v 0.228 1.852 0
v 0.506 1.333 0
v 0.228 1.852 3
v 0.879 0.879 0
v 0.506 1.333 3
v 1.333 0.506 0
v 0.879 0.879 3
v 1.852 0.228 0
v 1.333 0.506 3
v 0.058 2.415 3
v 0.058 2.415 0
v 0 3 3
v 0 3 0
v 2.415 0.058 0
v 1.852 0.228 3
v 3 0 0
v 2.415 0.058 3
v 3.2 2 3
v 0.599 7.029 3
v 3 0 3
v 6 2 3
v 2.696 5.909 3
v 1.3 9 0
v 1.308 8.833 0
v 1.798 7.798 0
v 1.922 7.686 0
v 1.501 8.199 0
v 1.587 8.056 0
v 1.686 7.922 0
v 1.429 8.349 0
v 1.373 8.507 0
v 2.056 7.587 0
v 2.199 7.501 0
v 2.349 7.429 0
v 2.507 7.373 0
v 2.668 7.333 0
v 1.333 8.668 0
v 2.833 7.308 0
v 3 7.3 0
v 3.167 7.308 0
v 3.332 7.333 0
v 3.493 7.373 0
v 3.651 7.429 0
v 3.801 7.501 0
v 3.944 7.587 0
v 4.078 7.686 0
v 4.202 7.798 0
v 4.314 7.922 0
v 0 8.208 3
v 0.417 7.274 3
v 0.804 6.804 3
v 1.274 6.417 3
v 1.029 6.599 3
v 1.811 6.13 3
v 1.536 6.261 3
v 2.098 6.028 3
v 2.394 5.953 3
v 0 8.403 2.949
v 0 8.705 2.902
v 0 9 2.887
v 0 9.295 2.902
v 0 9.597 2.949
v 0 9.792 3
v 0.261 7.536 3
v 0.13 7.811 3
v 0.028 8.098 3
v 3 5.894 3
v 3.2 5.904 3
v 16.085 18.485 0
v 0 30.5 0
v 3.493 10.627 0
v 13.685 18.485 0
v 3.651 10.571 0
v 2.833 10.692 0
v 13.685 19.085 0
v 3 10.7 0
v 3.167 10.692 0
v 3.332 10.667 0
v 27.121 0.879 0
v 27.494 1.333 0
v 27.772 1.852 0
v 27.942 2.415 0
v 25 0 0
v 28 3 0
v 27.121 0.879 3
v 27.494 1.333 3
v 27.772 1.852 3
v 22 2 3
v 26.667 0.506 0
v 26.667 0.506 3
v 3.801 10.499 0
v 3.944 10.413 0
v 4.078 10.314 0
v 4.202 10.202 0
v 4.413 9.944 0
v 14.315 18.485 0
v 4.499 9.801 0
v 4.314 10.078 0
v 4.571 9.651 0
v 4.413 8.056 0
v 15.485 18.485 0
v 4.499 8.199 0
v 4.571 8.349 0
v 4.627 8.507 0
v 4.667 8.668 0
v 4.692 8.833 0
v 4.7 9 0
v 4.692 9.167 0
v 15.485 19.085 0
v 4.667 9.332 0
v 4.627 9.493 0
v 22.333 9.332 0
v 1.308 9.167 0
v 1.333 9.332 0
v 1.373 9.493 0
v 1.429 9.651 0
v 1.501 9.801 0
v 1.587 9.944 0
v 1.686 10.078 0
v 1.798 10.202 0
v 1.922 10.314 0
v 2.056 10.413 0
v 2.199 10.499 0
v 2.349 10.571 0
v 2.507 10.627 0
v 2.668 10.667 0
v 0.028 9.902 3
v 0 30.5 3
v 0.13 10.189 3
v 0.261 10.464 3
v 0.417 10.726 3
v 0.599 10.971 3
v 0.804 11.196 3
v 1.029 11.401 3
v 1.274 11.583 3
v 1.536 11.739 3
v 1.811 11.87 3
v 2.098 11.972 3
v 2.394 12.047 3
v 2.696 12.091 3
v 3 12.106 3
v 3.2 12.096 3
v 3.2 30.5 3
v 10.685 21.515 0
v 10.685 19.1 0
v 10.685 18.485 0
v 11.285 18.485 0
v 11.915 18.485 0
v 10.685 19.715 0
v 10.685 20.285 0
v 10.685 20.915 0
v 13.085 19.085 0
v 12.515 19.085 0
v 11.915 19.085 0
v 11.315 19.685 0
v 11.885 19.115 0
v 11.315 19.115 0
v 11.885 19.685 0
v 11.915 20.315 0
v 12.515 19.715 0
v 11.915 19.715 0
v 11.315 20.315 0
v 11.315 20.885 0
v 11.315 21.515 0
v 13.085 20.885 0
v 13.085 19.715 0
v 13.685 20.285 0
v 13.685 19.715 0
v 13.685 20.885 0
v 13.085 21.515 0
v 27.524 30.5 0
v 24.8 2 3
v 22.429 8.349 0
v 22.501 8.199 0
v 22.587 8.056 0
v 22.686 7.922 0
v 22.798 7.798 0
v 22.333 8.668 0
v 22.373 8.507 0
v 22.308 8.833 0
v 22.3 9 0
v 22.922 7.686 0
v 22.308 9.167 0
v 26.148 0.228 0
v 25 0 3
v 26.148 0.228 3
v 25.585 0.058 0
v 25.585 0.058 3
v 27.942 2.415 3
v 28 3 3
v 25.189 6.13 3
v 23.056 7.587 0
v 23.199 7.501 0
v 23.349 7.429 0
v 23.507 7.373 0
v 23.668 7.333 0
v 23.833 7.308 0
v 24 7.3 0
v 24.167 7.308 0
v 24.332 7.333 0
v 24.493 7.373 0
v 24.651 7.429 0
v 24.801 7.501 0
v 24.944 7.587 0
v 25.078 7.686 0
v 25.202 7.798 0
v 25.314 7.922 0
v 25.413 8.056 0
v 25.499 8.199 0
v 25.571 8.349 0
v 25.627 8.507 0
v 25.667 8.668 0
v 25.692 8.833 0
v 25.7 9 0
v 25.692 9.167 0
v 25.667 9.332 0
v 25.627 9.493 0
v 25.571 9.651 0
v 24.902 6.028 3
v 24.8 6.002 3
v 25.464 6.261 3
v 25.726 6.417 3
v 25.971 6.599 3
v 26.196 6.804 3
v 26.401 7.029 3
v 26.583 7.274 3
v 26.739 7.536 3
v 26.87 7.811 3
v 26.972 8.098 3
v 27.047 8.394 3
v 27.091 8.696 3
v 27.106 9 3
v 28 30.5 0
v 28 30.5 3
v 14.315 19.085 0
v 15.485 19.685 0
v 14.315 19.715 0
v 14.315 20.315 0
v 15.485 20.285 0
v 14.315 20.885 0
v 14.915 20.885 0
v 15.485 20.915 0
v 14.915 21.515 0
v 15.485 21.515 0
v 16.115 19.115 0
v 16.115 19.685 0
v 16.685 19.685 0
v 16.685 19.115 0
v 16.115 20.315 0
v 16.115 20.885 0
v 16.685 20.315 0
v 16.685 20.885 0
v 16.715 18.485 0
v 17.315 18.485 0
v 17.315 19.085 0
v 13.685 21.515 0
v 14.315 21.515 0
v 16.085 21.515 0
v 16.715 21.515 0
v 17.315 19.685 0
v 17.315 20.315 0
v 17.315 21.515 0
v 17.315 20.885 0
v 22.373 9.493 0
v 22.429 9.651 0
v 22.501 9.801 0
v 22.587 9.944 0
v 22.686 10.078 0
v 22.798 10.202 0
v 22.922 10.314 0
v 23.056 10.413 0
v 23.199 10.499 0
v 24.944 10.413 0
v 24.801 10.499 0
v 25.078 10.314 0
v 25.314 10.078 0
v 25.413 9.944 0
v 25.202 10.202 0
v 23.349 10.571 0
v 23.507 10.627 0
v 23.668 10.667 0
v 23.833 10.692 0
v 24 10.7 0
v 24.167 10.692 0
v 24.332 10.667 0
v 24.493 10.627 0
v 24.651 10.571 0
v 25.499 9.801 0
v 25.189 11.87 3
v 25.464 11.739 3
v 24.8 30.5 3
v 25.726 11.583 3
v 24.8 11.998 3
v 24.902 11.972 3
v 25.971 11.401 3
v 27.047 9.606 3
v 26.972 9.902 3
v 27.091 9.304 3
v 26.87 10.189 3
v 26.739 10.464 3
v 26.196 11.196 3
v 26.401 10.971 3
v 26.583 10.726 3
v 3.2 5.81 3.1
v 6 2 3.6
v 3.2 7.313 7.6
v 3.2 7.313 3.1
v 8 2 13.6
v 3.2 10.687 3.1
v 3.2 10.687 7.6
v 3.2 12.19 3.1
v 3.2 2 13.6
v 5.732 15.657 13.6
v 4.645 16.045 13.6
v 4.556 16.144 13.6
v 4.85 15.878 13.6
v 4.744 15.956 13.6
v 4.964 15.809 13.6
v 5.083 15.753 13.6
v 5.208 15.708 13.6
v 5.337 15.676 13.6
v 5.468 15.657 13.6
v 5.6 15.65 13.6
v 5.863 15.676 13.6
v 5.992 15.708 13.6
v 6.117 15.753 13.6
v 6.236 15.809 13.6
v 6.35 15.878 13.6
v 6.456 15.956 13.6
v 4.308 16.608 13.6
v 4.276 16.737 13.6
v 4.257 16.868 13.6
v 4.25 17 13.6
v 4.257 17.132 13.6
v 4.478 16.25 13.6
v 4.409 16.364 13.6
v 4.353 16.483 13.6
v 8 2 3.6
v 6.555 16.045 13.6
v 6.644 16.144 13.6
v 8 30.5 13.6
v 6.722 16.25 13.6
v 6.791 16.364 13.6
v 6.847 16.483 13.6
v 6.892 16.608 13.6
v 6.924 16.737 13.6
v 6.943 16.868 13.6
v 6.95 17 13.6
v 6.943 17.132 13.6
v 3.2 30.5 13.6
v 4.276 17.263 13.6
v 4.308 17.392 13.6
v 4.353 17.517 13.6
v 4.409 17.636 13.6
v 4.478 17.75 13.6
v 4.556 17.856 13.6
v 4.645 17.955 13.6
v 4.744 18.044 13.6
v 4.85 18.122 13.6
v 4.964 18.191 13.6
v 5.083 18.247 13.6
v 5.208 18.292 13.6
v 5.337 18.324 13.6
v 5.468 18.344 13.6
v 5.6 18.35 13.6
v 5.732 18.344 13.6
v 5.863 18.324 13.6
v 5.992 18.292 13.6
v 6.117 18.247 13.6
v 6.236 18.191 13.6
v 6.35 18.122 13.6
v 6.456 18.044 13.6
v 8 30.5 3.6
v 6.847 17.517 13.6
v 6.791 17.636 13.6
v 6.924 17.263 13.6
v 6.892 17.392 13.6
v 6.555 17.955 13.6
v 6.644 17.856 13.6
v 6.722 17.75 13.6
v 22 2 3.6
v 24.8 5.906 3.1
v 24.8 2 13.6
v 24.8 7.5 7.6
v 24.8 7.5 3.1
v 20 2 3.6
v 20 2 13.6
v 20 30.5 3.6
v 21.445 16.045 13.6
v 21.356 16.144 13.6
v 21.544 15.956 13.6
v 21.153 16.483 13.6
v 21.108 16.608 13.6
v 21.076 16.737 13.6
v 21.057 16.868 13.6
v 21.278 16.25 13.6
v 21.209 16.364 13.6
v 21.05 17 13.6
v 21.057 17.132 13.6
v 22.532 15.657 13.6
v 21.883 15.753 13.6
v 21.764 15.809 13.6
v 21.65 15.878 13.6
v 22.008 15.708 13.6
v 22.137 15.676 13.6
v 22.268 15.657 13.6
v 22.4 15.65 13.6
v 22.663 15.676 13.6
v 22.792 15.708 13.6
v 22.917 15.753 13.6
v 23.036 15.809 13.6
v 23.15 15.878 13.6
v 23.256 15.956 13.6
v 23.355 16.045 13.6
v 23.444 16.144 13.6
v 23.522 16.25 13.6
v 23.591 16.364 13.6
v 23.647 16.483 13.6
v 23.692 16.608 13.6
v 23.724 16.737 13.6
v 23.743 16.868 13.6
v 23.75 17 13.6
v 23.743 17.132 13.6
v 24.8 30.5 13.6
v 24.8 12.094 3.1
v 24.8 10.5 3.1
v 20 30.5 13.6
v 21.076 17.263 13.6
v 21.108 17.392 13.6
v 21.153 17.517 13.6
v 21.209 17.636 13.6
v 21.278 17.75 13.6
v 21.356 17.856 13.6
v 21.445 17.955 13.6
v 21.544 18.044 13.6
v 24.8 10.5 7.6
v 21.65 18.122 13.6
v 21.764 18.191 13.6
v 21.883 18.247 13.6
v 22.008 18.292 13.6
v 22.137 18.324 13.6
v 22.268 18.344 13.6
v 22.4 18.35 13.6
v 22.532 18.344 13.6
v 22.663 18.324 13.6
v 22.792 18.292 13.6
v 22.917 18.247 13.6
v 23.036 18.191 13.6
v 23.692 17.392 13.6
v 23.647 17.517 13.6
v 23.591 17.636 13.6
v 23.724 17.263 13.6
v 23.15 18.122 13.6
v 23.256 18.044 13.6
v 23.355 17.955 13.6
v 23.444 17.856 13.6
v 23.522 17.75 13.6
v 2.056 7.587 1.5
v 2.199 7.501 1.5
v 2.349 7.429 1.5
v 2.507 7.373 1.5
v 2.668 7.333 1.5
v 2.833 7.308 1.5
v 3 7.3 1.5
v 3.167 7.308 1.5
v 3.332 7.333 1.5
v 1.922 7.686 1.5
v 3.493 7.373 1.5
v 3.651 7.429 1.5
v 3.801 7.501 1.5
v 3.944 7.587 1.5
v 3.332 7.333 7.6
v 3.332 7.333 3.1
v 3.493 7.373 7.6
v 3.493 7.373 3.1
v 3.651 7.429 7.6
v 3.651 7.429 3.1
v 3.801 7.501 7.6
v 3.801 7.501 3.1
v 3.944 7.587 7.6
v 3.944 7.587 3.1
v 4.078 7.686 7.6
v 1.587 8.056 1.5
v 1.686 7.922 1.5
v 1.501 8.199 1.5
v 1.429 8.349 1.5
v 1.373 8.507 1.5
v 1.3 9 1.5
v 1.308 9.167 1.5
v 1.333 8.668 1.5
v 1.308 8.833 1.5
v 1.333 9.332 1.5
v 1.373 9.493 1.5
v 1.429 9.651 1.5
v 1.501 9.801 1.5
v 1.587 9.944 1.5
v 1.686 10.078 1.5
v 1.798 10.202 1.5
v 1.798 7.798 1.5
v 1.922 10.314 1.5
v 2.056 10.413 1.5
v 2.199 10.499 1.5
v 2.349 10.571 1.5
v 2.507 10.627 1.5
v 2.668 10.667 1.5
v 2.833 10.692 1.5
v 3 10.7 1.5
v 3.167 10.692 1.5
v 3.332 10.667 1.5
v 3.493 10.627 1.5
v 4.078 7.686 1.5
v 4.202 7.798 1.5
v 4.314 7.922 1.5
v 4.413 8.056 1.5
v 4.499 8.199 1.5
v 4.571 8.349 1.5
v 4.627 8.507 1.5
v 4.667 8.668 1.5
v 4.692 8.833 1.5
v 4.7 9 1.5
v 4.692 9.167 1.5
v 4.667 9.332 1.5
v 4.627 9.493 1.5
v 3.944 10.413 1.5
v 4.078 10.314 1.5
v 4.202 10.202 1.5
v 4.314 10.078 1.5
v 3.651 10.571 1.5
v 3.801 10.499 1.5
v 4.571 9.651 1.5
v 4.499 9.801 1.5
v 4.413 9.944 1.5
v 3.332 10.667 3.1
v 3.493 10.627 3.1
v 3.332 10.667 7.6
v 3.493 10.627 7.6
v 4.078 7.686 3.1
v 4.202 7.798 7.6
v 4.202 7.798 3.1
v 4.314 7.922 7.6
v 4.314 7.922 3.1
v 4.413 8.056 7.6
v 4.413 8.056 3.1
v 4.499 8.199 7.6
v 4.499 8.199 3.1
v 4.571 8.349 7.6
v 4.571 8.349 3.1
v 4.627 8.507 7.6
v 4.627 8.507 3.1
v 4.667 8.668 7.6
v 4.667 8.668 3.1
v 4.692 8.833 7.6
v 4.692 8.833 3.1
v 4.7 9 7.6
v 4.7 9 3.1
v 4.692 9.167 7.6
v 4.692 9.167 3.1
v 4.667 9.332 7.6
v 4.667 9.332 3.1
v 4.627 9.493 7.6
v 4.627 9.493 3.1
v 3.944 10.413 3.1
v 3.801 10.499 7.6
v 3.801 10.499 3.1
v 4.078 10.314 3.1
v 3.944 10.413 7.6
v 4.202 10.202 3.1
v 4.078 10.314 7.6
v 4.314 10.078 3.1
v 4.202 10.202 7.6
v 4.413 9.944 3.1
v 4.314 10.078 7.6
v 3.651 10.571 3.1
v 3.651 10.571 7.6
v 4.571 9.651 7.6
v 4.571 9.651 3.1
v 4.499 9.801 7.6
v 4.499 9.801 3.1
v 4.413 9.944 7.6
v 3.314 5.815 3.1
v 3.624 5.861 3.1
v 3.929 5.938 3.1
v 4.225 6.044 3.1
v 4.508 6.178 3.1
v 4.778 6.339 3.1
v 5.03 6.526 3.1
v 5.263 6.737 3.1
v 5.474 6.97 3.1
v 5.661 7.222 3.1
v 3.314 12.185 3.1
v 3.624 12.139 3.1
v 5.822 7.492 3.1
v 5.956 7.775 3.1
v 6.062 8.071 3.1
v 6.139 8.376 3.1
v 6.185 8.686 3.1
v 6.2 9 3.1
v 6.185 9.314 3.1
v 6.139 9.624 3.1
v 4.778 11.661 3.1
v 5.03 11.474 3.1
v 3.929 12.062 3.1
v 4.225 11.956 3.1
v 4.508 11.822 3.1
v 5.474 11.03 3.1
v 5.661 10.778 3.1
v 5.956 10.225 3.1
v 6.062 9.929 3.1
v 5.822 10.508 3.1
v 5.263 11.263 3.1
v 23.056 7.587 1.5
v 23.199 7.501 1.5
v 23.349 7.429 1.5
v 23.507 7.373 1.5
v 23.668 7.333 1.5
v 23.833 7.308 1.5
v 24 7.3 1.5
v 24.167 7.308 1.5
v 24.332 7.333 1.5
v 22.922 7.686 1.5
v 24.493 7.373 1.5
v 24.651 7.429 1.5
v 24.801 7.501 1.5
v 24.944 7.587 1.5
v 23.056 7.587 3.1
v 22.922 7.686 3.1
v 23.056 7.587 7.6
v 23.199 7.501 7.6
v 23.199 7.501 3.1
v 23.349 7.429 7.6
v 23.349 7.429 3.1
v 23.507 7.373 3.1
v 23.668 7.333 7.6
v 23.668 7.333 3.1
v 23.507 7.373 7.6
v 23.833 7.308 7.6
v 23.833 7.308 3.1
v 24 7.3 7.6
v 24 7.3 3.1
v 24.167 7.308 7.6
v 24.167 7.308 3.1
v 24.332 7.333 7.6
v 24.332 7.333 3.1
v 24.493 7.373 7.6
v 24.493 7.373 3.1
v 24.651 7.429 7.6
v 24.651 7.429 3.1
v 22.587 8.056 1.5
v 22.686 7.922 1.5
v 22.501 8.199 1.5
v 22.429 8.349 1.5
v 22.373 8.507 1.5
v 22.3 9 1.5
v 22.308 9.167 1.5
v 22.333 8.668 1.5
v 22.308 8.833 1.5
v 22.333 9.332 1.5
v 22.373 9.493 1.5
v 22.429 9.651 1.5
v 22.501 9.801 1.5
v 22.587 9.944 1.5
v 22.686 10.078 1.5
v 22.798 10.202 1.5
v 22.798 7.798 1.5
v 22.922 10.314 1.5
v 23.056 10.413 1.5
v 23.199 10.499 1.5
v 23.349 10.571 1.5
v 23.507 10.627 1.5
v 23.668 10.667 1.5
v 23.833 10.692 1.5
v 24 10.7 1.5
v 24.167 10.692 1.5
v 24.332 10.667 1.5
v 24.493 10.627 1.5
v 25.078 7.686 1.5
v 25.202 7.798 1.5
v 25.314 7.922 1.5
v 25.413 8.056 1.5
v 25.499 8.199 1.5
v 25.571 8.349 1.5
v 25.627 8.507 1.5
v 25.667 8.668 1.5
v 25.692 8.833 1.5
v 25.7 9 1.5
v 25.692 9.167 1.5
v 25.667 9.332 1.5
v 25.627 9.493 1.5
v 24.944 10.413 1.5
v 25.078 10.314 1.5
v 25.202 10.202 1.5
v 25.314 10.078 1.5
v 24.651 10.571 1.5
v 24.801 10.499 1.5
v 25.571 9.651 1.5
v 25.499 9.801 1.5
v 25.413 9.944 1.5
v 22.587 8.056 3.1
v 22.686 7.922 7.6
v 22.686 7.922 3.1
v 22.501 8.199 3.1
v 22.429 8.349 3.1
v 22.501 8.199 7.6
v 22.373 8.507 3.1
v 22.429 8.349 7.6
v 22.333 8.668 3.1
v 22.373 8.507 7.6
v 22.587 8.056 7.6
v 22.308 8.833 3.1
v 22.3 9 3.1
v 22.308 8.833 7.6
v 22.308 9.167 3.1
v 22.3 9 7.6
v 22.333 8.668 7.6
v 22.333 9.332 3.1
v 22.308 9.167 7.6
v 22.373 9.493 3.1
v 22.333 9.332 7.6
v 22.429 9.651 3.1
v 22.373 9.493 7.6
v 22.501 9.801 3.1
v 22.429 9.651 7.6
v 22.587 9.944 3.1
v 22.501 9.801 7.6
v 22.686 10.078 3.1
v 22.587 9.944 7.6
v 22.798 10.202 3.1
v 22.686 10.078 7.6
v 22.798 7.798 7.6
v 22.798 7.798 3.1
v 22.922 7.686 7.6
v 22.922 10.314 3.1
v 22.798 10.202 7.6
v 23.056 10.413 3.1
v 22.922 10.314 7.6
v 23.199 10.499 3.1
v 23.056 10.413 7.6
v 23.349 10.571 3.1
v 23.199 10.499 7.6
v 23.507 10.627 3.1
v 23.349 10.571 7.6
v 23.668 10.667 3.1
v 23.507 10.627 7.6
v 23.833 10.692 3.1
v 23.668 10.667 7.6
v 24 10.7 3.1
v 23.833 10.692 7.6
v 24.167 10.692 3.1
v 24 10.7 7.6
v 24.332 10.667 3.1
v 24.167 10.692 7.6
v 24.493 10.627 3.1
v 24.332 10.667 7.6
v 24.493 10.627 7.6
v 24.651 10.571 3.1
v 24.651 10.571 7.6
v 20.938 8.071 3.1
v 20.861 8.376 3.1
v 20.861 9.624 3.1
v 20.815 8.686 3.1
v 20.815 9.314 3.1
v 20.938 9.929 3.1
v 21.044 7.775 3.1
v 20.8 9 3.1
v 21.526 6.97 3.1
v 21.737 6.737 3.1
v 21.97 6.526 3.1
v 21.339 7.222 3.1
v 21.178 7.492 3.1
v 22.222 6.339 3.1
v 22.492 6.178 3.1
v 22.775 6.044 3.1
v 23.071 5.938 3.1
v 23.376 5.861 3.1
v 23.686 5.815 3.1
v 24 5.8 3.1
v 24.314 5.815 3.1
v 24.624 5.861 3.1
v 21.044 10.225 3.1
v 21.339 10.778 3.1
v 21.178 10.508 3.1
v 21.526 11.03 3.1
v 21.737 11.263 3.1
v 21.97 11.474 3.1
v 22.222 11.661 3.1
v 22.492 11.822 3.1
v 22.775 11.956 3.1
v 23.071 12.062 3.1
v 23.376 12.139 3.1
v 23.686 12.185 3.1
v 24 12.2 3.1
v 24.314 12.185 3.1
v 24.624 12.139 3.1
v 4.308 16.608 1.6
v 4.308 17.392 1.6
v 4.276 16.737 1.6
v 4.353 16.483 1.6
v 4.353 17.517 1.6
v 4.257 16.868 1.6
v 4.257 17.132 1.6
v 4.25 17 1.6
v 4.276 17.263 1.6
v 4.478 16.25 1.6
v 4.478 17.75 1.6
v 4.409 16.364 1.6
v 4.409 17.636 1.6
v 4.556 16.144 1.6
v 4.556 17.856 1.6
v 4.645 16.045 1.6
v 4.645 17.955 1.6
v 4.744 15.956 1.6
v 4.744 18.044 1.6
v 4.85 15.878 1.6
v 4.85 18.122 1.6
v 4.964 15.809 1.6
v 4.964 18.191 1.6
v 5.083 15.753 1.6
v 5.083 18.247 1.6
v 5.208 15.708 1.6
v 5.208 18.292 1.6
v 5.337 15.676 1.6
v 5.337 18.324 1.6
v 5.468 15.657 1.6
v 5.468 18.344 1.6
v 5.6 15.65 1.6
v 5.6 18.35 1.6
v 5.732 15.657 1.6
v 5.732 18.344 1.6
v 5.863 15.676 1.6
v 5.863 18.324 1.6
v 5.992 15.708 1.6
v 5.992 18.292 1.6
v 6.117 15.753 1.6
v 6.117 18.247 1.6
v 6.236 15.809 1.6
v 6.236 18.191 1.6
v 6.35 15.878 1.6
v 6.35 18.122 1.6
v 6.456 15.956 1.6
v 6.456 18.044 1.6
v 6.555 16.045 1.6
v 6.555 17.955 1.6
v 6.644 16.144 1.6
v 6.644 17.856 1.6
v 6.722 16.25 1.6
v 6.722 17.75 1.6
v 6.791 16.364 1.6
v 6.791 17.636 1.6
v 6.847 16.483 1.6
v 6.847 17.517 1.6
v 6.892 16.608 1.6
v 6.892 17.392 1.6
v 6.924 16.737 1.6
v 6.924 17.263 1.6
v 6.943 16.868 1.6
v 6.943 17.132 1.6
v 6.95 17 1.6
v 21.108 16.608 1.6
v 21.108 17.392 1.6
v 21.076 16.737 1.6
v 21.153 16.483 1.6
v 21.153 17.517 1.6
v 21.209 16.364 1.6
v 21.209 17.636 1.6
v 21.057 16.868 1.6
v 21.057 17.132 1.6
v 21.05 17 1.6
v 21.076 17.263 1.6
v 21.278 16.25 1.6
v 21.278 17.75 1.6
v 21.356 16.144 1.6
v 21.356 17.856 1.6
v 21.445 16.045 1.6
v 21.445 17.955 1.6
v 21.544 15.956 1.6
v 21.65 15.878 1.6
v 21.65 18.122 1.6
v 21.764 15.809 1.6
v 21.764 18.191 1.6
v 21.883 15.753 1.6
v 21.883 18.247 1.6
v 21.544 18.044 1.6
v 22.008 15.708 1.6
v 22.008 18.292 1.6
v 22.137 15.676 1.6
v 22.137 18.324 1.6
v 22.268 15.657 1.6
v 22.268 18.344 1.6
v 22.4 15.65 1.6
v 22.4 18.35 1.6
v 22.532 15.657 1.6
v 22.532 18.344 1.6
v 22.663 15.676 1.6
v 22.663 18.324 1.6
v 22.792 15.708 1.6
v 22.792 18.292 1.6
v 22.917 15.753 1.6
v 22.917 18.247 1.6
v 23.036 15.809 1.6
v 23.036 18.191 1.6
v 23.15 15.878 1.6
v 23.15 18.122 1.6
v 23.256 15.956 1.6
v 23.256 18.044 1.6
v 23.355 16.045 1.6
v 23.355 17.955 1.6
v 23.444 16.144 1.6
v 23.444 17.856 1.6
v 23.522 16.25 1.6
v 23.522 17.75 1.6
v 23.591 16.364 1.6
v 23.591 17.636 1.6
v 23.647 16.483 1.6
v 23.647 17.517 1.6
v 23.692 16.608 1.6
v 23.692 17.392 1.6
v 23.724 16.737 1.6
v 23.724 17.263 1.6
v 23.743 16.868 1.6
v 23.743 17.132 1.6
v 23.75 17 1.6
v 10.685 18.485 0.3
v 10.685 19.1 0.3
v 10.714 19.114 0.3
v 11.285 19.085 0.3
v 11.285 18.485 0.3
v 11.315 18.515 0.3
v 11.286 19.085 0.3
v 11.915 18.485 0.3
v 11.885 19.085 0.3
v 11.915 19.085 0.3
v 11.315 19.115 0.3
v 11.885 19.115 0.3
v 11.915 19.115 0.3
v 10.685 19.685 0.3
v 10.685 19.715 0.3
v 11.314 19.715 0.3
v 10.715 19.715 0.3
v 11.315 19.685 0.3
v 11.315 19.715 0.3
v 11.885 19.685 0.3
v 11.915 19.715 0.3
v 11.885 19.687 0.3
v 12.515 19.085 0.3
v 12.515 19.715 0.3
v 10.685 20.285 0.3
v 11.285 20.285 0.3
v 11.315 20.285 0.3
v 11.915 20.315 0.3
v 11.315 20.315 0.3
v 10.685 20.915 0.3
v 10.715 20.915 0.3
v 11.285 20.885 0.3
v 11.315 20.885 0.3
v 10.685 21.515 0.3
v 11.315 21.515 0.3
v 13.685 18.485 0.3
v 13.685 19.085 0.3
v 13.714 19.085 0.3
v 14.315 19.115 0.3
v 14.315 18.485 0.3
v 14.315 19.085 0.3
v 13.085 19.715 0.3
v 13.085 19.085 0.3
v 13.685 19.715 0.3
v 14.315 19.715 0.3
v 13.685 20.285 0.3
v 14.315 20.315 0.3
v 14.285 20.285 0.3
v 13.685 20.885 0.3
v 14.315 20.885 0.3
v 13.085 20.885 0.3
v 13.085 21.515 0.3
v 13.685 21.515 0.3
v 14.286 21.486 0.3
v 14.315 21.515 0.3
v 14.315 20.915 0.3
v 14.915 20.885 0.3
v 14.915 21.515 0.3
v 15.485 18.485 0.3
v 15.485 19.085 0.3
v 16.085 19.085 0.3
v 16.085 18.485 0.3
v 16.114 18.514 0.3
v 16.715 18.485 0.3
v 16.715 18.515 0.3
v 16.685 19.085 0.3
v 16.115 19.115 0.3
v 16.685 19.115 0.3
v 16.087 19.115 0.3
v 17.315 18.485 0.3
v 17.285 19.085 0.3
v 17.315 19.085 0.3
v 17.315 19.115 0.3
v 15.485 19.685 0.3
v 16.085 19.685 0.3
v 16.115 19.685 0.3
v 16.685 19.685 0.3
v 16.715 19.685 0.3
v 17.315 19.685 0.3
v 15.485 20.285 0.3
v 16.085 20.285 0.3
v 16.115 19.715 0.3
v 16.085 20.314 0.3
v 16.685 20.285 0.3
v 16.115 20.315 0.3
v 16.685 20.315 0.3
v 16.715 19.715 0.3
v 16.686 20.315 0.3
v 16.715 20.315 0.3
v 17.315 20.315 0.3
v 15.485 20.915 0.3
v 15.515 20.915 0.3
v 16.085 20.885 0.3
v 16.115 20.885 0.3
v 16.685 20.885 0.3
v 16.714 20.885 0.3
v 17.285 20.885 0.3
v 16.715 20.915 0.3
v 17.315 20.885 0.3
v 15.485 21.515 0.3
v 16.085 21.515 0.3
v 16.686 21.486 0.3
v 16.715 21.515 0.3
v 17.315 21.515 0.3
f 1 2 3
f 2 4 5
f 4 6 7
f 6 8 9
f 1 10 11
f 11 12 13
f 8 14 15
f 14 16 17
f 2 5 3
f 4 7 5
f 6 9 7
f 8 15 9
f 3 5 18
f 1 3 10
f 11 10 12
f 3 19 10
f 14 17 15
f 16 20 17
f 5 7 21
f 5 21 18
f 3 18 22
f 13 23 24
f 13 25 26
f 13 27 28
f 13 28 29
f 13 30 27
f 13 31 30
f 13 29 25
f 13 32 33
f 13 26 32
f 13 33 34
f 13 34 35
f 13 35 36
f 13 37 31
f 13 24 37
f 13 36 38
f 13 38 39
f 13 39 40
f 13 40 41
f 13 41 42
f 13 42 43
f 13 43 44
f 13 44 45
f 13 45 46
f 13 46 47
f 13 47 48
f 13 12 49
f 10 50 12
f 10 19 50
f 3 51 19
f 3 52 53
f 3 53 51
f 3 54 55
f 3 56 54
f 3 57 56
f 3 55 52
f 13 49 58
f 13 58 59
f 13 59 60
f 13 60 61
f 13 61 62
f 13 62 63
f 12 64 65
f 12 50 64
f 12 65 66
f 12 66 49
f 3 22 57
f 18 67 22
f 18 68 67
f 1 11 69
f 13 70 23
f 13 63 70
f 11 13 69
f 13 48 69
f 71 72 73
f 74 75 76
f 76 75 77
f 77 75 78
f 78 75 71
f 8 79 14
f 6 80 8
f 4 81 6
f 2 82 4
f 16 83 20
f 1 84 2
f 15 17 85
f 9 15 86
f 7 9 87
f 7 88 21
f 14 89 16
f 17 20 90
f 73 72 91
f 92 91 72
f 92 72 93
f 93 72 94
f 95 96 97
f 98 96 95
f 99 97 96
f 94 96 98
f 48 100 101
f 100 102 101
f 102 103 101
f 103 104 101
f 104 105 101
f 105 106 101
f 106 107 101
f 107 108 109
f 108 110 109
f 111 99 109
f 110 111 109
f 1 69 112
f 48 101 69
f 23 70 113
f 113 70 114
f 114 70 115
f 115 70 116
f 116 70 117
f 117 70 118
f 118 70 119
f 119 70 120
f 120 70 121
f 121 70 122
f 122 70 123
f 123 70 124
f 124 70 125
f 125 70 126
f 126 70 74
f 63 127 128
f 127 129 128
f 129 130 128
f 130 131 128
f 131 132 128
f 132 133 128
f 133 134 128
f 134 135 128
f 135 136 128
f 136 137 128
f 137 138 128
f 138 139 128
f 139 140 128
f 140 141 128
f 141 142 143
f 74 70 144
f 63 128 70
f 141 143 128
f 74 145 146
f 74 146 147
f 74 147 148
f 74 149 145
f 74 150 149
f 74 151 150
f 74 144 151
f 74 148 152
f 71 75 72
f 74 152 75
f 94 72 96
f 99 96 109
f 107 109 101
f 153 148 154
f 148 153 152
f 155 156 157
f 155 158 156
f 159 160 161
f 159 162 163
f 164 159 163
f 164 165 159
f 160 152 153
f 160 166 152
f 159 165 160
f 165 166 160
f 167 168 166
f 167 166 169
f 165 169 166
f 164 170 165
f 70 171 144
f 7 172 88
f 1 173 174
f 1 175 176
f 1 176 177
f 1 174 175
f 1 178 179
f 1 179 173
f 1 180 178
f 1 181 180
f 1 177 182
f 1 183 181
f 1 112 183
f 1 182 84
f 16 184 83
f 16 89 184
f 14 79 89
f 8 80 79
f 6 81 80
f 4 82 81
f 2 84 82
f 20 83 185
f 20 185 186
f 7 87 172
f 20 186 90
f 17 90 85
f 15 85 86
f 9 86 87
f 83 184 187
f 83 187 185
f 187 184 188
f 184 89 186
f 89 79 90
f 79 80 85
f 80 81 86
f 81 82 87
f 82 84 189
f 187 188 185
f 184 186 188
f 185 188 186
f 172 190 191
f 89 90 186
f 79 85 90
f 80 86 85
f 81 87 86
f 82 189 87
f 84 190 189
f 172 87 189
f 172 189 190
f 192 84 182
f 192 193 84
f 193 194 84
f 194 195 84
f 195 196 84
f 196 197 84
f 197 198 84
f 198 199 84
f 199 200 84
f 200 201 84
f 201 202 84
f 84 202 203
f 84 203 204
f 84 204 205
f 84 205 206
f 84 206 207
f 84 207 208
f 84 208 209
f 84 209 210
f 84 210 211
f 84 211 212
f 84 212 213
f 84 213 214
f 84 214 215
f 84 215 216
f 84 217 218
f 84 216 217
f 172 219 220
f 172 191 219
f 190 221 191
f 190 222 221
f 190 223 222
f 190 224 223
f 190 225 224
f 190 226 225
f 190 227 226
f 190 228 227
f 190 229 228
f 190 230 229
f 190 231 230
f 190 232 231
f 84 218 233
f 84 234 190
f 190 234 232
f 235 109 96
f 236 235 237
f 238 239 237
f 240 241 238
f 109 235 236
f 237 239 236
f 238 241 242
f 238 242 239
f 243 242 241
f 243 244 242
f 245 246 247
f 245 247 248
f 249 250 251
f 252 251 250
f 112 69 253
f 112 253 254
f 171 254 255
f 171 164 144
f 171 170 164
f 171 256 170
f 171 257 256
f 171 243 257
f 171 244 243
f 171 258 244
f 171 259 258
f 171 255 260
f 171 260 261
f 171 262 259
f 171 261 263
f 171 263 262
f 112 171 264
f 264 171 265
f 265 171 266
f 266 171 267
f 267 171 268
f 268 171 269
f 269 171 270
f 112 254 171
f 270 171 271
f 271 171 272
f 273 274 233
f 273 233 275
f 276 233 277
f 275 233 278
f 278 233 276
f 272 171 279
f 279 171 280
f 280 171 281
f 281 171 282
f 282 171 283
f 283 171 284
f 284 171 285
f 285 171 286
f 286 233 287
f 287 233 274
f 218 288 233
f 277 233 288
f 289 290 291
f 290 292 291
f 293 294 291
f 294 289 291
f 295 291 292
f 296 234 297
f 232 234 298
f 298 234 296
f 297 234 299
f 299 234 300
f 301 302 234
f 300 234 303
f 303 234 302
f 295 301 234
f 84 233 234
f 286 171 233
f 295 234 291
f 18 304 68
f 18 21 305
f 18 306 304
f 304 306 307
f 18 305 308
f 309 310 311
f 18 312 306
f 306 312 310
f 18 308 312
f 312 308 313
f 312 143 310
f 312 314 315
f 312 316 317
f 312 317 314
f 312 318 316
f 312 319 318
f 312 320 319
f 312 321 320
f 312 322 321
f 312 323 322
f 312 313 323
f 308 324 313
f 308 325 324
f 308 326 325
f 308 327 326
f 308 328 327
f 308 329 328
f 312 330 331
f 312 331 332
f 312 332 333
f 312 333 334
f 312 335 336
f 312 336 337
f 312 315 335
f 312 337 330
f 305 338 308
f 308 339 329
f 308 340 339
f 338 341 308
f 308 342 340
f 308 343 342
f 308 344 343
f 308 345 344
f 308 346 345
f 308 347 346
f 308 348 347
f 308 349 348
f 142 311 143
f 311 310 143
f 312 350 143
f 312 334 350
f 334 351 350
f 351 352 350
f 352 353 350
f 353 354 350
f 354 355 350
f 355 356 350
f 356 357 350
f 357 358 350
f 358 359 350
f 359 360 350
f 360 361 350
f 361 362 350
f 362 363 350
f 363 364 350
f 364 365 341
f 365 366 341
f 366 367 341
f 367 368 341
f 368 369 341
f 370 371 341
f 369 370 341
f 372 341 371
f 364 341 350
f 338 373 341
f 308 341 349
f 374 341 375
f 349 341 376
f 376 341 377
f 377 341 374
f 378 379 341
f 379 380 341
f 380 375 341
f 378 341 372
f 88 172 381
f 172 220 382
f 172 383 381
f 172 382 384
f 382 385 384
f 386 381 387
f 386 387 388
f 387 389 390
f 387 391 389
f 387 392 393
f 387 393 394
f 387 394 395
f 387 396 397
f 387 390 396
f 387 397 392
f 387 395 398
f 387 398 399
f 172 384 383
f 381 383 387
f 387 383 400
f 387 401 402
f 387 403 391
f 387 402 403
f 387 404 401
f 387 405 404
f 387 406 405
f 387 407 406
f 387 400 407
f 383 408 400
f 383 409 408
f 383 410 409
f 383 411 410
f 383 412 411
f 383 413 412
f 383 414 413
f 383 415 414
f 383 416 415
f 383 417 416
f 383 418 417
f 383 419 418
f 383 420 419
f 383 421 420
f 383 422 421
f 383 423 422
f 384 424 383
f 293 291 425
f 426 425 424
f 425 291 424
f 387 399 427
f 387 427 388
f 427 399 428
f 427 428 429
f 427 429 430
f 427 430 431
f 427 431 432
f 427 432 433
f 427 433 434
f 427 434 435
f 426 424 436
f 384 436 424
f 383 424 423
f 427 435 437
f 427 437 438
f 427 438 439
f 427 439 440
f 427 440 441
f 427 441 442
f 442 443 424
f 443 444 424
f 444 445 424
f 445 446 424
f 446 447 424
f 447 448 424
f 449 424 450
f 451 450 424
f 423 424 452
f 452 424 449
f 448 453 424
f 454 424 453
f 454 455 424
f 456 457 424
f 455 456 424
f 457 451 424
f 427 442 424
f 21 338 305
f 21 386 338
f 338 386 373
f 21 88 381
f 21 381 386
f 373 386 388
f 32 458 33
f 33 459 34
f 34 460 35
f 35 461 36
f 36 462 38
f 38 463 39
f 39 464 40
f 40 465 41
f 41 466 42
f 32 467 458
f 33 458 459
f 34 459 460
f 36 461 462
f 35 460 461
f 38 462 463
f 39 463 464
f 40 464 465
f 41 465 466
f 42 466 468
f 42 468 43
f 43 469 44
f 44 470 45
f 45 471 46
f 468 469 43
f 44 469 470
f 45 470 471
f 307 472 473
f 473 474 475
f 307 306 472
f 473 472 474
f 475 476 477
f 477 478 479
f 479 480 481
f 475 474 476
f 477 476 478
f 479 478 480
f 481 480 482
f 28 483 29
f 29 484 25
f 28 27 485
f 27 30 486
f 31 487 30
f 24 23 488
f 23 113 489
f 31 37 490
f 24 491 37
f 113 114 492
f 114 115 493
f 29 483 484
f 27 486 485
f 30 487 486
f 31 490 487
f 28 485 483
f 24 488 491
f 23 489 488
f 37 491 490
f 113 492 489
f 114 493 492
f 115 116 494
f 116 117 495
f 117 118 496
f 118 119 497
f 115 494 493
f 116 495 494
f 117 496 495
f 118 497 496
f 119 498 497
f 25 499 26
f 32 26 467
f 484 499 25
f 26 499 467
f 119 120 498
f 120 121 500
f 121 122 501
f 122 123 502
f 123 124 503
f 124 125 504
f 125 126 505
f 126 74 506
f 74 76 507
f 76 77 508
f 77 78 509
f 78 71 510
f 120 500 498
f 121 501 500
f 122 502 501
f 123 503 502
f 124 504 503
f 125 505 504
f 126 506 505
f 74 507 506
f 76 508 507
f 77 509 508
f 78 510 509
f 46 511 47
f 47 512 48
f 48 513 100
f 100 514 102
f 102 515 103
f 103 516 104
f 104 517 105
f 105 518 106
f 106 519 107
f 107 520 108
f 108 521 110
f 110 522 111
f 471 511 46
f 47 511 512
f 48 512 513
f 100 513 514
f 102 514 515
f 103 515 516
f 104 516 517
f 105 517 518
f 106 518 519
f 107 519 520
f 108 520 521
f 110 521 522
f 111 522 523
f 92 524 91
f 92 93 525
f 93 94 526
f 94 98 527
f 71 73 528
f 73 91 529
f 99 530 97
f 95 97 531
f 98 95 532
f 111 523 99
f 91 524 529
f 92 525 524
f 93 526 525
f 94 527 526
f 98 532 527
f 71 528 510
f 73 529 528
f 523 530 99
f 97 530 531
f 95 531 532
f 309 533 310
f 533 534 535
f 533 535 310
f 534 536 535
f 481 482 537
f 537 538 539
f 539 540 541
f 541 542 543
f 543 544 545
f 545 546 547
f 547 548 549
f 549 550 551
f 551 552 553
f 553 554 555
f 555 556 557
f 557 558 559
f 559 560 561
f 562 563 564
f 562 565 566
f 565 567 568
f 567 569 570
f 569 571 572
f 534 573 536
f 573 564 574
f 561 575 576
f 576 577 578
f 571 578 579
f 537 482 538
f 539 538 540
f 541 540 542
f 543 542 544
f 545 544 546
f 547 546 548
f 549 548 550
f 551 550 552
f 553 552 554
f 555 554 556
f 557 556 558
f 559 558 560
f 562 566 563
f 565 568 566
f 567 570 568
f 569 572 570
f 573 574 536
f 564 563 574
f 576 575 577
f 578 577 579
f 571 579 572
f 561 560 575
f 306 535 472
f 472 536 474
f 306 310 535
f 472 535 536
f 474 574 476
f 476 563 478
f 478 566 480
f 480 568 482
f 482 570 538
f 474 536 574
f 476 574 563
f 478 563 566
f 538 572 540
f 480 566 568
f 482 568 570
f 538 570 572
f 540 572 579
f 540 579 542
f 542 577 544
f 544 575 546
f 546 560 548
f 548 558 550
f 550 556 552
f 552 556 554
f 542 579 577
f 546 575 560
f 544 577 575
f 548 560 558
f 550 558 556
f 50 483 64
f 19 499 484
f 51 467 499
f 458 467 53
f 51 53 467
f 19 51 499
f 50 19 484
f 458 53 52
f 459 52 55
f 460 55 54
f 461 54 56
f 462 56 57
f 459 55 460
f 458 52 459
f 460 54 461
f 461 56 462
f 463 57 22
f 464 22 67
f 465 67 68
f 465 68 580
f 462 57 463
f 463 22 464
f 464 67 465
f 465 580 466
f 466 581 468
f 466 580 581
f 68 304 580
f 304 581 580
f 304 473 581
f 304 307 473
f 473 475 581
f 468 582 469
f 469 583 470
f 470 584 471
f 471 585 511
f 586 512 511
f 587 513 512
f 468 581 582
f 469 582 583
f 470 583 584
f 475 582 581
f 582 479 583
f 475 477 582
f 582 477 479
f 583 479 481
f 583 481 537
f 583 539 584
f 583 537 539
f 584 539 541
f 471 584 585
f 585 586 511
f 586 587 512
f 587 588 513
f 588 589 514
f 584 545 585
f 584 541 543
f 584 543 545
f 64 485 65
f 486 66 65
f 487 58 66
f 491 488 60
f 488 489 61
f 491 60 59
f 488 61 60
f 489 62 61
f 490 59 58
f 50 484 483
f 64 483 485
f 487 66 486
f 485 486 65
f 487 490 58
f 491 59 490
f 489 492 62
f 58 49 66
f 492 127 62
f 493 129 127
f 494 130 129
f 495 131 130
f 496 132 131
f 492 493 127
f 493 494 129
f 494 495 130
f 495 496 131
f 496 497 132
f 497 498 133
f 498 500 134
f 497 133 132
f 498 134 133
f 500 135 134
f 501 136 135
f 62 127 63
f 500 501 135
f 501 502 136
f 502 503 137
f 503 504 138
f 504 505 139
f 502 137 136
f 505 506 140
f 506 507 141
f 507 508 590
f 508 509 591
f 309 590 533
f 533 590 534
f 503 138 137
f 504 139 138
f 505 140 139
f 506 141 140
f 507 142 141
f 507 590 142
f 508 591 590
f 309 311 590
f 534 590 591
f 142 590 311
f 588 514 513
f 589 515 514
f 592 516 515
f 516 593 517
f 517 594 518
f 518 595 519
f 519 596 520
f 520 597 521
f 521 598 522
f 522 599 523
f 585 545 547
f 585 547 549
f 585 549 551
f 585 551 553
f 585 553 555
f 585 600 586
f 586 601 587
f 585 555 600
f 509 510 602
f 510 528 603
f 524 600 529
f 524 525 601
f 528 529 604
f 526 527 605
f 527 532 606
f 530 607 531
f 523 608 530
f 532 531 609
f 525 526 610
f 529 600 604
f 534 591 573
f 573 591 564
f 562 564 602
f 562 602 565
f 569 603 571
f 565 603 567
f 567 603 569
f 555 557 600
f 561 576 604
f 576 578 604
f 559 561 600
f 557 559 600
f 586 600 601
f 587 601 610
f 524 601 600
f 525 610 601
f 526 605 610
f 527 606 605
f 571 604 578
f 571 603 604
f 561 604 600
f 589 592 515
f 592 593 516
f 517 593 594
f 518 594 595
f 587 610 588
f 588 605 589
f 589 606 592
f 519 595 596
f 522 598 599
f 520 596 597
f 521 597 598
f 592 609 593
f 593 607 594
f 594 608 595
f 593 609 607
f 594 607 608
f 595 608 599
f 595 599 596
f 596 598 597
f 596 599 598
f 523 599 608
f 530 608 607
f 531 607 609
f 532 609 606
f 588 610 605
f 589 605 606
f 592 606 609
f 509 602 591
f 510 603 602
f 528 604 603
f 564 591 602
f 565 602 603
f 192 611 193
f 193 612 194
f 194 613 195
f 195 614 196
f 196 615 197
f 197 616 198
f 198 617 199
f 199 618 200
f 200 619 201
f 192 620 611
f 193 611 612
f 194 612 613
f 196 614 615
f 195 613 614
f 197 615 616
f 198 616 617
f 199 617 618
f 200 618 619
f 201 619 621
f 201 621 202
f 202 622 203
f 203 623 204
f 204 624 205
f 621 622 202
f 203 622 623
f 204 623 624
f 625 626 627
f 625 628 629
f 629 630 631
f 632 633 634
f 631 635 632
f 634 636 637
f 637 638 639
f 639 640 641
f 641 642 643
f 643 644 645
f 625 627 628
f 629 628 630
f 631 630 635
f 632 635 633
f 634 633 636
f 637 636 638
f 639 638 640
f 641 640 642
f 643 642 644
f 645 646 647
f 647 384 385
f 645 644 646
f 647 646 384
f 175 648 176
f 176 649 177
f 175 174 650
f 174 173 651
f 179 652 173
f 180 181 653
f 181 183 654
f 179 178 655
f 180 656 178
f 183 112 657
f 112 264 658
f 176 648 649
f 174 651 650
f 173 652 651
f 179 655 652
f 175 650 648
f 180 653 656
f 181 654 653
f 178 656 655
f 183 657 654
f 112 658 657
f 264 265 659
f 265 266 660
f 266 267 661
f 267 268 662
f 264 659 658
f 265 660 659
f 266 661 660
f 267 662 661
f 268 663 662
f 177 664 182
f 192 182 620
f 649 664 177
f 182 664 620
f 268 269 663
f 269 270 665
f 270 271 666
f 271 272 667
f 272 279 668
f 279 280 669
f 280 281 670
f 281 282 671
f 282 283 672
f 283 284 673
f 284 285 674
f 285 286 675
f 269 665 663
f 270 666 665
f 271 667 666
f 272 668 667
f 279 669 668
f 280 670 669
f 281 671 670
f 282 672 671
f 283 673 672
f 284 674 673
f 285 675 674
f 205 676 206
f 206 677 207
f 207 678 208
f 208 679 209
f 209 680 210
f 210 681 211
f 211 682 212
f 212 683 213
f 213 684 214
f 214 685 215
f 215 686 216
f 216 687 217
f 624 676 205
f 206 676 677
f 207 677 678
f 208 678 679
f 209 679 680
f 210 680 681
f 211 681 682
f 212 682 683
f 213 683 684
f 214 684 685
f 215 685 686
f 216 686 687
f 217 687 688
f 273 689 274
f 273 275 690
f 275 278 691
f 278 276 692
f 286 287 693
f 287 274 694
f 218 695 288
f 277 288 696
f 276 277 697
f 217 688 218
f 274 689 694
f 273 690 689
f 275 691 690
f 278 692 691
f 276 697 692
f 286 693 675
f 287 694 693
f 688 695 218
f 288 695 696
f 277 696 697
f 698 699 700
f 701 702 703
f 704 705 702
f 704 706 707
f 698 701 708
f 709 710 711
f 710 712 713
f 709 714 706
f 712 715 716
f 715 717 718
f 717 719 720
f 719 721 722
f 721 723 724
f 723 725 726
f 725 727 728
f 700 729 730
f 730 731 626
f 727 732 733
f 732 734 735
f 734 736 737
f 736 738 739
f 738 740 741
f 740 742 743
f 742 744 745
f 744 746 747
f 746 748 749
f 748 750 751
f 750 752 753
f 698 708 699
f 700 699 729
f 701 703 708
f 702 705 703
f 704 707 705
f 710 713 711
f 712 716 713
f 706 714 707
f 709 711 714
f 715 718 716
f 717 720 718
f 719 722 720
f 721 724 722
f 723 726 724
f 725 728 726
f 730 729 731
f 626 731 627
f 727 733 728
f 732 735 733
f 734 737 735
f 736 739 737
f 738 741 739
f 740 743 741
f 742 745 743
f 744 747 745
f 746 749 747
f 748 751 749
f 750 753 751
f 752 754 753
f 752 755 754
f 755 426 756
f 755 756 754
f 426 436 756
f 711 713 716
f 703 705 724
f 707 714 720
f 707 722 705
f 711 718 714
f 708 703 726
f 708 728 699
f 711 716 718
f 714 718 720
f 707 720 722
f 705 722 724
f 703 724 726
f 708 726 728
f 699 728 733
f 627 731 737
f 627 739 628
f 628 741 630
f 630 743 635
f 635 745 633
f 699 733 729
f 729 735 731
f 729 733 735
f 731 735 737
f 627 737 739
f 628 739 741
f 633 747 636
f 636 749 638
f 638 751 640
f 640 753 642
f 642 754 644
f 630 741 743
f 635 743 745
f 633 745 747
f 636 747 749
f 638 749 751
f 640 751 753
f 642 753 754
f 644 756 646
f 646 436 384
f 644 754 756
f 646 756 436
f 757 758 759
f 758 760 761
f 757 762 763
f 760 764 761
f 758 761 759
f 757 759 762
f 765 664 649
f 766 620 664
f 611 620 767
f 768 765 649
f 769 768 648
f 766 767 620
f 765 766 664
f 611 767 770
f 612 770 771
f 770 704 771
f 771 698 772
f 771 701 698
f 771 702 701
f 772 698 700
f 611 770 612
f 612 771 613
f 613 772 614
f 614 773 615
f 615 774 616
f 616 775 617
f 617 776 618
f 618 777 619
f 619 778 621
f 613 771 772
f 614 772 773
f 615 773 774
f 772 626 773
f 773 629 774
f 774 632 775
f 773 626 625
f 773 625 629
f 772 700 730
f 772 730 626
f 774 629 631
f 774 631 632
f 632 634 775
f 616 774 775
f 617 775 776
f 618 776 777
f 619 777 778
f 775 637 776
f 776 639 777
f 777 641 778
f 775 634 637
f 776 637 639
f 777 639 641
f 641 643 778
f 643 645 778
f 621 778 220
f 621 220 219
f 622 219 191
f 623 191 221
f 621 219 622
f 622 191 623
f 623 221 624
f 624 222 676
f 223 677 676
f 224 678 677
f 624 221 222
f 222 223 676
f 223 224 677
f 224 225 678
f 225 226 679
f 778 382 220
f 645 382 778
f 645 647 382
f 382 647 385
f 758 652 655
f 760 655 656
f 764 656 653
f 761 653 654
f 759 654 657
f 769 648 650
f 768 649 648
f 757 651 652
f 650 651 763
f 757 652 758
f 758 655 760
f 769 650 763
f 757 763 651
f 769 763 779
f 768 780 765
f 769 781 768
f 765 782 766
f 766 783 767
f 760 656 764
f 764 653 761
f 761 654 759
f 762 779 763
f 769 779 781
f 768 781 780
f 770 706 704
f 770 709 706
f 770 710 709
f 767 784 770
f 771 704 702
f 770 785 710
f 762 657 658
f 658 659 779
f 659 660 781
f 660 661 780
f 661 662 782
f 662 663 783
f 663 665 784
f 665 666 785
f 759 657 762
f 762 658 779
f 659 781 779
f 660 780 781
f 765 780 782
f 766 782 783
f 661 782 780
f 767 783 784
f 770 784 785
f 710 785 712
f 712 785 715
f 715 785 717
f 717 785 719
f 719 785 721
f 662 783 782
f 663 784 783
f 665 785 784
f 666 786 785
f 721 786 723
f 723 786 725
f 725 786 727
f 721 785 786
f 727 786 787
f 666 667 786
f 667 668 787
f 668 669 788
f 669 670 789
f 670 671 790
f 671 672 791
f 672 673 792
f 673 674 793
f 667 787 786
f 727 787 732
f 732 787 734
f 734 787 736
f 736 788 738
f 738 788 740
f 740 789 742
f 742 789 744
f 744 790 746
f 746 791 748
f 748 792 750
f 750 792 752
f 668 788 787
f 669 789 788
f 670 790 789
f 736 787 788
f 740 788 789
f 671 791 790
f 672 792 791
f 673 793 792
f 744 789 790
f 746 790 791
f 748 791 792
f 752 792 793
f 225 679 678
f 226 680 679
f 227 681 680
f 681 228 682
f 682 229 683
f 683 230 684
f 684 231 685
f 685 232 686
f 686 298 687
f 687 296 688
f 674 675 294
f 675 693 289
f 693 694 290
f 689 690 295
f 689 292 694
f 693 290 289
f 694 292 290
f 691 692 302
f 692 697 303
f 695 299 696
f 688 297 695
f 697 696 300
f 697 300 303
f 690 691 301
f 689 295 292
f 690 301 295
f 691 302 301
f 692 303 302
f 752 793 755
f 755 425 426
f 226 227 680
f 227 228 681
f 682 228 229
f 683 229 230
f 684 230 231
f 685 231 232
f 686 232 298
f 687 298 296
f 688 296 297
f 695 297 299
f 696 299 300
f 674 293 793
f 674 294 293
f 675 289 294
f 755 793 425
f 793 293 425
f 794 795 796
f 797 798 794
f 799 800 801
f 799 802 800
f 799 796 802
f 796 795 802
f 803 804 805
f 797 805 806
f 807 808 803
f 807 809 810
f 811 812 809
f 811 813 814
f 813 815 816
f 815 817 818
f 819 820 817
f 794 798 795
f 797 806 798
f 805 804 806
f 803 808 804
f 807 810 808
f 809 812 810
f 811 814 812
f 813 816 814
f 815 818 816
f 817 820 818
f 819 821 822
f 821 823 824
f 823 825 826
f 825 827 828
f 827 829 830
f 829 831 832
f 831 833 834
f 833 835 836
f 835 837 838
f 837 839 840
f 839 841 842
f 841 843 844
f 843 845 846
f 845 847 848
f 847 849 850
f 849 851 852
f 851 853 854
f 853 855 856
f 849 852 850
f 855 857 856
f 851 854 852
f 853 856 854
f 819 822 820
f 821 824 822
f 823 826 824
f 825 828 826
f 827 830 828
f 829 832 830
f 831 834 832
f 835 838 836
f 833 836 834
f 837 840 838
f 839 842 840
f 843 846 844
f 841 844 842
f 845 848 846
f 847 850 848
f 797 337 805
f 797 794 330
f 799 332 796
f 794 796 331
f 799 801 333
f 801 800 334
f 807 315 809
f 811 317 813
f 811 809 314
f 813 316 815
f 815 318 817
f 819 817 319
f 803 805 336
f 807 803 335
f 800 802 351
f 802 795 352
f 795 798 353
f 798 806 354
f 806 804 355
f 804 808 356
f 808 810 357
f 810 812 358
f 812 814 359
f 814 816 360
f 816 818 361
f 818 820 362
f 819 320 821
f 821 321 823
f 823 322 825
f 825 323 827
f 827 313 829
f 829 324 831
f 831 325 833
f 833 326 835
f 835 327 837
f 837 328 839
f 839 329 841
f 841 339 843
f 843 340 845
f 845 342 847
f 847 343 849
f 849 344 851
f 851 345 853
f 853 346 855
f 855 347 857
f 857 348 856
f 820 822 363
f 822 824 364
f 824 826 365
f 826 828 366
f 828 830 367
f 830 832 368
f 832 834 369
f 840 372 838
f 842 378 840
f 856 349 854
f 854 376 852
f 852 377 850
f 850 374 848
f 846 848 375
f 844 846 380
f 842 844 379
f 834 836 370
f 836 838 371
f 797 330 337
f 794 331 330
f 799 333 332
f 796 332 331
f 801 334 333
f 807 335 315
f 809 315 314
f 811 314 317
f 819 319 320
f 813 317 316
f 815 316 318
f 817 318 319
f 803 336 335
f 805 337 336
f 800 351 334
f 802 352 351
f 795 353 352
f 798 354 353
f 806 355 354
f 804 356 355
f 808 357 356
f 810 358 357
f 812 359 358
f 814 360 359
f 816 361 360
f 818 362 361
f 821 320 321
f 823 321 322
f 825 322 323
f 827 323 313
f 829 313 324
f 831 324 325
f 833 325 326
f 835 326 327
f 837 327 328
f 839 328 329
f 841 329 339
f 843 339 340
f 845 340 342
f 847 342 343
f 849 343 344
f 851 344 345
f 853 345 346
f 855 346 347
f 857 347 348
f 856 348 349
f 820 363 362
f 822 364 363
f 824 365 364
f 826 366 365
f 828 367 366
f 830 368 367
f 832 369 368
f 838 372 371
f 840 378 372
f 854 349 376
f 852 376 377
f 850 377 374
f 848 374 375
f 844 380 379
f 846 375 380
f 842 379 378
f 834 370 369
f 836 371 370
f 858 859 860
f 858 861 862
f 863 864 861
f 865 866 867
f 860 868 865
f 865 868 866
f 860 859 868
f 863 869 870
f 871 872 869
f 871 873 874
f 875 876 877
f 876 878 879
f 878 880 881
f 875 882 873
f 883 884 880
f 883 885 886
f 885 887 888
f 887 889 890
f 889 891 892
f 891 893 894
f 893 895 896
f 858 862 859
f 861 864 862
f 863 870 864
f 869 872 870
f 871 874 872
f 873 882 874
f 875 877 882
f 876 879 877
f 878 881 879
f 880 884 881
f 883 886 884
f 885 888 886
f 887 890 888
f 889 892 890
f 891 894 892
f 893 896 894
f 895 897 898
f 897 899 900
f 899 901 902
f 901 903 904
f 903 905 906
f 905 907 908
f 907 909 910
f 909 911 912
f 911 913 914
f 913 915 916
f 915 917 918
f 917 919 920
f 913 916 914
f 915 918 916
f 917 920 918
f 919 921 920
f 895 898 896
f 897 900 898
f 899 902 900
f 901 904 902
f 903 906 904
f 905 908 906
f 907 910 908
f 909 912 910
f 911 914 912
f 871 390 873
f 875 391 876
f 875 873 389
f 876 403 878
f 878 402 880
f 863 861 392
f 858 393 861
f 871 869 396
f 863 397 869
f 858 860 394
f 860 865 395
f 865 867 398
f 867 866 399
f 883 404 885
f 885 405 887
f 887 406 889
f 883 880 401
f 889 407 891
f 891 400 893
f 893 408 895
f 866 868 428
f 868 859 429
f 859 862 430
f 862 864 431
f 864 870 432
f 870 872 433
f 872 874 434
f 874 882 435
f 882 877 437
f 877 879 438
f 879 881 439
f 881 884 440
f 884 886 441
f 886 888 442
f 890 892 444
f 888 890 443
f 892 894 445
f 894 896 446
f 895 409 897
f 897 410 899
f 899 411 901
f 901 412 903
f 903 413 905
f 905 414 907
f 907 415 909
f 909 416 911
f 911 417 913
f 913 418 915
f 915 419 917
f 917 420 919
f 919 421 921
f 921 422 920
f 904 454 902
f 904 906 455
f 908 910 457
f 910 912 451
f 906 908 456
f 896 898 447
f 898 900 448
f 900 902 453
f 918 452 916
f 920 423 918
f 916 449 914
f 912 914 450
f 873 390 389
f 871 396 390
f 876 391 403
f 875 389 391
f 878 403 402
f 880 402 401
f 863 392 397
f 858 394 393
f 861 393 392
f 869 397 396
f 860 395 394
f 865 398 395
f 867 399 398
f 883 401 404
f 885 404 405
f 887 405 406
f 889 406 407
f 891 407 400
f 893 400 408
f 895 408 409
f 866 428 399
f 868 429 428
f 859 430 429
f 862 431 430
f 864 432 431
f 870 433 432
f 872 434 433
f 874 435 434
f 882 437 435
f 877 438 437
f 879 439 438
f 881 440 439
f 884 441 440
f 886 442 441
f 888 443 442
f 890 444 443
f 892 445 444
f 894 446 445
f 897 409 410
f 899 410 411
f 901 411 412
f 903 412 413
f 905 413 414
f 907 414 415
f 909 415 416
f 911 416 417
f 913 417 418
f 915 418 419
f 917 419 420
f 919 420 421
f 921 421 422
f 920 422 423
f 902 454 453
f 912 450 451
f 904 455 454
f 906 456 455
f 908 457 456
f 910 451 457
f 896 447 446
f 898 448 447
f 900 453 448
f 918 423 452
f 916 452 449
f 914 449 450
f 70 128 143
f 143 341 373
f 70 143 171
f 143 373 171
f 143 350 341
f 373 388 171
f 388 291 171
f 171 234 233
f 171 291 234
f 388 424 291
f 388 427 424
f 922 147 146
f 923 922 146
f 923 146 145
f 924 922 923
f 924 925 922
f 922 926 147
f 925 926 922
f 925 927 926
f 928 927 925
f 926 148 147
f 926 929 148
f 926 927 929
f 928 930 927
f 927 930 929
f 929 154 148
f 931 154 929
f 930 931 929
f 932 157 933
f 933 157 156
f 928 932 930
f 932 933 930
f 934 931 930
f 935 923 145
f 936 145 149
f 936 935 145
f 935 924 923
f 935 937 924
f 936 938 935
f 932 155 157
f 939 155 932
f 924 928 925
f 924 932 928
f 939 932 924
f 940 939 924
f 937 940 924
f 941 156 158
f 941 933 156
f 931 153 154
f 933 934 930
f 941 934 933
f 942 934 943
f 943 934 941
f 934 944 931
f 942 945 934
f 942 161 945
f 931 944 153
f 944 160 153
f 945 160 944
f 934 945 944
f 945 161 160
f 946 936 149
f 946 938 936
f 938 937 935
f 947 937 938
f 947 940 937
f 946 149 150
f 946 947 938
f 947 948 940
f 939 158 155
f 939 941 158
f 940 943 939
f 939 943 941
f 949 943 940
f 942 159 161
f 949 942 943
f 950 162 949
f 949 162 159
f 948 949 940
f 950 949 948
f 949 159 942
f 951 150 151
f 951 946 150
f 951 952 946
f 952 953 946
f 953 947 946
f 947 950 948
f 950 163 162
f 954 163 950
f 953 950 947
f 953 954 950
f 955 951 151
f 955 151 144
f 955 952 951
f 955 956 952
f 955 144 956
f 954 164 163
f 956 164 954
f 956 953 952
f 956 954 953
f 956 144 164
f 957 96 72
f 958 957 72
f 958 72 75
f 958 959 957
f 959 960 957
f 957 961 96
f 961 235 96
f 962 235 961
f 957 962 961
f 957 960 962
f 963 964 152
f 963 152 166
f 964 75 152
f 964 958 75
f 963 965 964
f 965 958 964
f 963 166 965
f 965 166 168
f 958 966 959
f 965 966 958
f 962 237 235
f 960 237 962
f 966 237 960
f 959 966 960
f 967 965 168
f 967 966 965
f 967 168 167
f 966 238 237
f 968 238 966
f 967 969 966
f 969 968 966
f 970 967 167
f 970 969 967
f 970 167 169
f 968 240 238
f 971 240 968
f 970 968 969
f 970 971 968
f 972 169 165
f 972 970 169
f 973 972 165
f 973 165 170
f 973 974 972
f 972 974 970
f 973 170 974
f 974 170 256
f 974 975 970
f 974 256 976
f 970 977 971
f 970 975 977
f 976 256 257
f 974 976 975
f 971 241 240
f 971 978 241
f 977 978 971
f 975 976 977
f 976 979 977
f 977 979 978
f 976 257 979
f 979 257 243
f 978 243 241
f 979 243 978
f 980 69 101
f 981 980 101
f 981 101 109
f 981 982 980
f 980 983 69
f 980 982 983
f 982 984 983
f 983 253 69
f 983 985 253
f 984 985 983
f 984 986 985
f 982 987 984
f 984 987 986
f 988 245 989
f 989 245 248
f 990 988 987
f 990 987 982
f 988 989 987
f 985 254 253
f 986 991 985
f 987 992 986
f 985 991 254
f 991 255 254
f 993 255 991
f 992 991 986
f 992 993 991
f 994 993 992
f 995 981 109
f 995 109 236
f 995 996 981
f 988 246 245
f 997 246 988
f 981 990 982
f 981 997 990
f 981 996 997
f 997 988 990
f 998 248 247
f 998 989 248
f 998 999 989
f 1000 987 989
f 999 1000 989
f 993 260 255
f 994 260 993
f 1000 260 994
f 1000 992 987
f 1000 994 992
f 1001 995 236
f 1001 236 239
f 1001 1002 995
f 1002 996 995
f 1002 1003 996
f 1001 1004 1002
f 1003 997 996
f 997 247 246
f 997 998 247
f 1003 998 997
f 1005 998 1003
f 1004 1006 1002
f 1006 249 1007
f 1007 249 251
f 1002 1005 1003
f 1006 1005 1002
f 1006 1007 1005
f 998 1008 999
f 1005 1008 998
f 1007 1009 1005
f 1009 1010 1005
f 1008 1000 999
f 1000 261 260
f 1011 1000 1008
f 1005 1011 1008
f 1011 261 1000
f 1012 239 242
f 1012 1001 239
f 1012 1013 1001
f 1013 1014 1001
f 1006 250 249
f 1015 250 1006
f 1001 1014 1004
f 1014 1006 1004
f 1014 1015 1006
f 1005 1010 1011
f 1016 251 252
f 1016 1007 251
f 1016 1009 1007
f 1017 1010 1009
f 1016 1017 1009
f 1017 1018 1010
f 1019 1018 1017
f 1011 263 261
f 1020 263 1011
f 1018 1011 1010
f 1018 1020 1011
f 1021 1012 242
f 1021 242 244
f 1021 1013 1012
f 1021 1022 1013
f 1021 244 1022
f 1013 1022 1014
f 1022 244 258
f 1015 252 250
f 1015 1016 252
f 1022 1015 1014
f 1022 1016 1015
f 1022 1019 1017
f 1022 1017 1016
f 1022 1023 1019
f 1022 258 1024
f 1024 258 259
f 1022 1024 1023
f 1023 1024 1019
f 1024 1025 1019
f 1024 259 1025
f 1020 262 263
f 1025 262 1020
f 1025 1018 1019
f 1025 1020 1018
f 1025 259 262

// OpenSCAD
// N20取牌馬達底座
$fn=64;
translate([36,28,-45.4]){rotate([0,0,0]){difference(){difference(){difference(){difference(){difference(){difference(){difference(){difference(){union(){union(){union(){translate([-22,-11,0]){translate([0,0,45.4]){linear_extrude(height=3)polygon([[14,14],[13.94236,14.58527],[13.77164,15.14805],[13.49441,15.66671],[13.12132,16.12132],[12.66671,16.49441],[12.14805,16.77164],[11.58527,16.94236],[11,17],[-11,17],[-11.58527,16.94236],[-12.14805,16.77164],[-12.66671,16.49441],[-13.12132,16.12132],[-13.49441,15.66671],[-13.77164,15.14805],[-13.94236,14.58527],[-14,14],[-14,-14],[-13.94236,-14.58527],[-13.77164,-15.14805],[-13.49441,-15.66671],[-13.12132,-16.12132],[-12.66671,-16.49441],[-12.14805,-16.77164],[-11.58527,-16.94236],[-11,-17],[11,-17],[11.58527,-16.94236],[12.14805,-16.77164],[12.66671,-16.49441],[13.12132,-16.12132],[13.49441,-15.66671],[13.77164,-15.14805],[13.94236,-14.58527],[14,-14]]);}}translate([-32.8,-26,48.3]){cube([4.8,30,10.7]);}}translate([-16,-26,48.3]){cube([4.8,30,10.7]);}}translate([-30,-26,48.3]){cube([16,30,0.7]);}}translate([-33,-19,44]){cylinder(h=9,d1=3.4,d2=3.4,$fn=64);}}translate([-33,-19,48.5]){rotate([180,0,0]){translate([0,0,0]){cylinder(h=1.6,d1=6.4,d2=3.4,$fn=64);}}}}translate([-12,-19,44]){cylinder(h=9,d1=3.4,d2=3.4,$fn=64);}}translate([-12,-19,48.5]){rotate([180,0,0]){translate([0,0,0]){cylinder(h=1.6,d1=6.4,d2=3.4,$fn=64);}}}}translate([-30.4,-11,47]){cylinder(h=16,d1=2.7,d2=2.7,$fn=64);}}translate([-13.6,-11,47]){cylinder(h=16,d1=2.7,d2=2.7,$fn=64);}}translate([-47,2.5,43]){cube([50,15,30]);}}multmatrix([[1,0,0,-22],[0,-1,0,-8],[0,0,-1,45.4],[0,0,0,1]]){union(){union(){union(){union(){union(){union(){union(){union(){union(){union(){union(){union(){union(){union(){union(){union(){union(){union(){union(){union(){union(){union(){union(){union(){union(){union(){union(){union(){translate([-3.315,0.885,-0.3]){cube([0.63,0.63,0.42]);}translate([-2.715,0.885,-0.3]){cube([0.63,0.63,0.42]);}}translate([-3.315,0.285,-0.3]){cube([0.63,0.63,0.42]);}}translate([-2.115,0.285,-0.3]){cube([0.63,0.63,0.42]);}}translate([-3.315,-0.315,-0.3]){cube([0.63,0.63,0.42]);}}translate([-2.715,-0.315,-0.3]){cube([0.63,0.63,0.42]);}}translate([-3.315,-0.915,-0.3]){cube([0.63,0.63,0.42]);}}translate([-3.315,-1.515,-0.3]){cube([0.63,0.63,0.42]);}}translate([-0.315,0.885,-0.3]){cube([0.63,0.63,0.42]);}}translate([-0.915,0.285,-0.3]){cube([0.63,0.63,0.42]);}}translate([-0.315,0.285,-0.3]){cube([0.63,0.63,0.42]);}}translate([-0.315,-0.315,-0.3]){cube([0.63,0.63,0.42]);}}translate([-0.315,-0.915,-0.3]){cube([0.63,0.63,0.42]);}}translate([-0.915,-1.515,-0.3]){cube([0.63,0.63,0.42]);}}translate([-0.315,-1.515,-0.3]){cube([0.63,0.63,0.42]);}}translate([0.285,-1.515,-0.3]){cube([0.63,0.63,0.42]);}}translate([1.485,0.885,-0.3]){cube([0.63,0.63,0.42]);}}translate([2.085,0.885,-0.3]){cube([0.63,0.63,0.42]);}}translate([2.685,0.885,-0.3]){cube([0.63,0.63,0.42]);}}translate([1.485,0.285,-0.3]){cube([0.63,0.63,0.42]);}}translate([2.685,0.285,-0.3]){cube([0.63,0.63,0.42]);}}translate([1.485,-0.315,-0.3]){cube([0.63,0.63,0.42]);}}translate([2.085,-0.315,-0.3]){cube([0.63,0.63,0.42]);}}translate([2.685,-0.315,-0.3]){cube([0.63,0.63,0.42]);}}translate([1.485,-0.915,-0.3]){cube([0.63,0.63,0.42]);}}translate([2.685,-0.915,-0.3]){cube([0.63,0.63,0.42]);}}translate([1.485,-1.515,-0.3]){cube([0.63,0.63,0.42]);}}translate([2.085,-1.515,-0.3]){cube([0.63,0.63,0.42]);}}translate([2.685,-1.515,-0.3]){cube([0.63,0.63,0.42]);}}}}}}
